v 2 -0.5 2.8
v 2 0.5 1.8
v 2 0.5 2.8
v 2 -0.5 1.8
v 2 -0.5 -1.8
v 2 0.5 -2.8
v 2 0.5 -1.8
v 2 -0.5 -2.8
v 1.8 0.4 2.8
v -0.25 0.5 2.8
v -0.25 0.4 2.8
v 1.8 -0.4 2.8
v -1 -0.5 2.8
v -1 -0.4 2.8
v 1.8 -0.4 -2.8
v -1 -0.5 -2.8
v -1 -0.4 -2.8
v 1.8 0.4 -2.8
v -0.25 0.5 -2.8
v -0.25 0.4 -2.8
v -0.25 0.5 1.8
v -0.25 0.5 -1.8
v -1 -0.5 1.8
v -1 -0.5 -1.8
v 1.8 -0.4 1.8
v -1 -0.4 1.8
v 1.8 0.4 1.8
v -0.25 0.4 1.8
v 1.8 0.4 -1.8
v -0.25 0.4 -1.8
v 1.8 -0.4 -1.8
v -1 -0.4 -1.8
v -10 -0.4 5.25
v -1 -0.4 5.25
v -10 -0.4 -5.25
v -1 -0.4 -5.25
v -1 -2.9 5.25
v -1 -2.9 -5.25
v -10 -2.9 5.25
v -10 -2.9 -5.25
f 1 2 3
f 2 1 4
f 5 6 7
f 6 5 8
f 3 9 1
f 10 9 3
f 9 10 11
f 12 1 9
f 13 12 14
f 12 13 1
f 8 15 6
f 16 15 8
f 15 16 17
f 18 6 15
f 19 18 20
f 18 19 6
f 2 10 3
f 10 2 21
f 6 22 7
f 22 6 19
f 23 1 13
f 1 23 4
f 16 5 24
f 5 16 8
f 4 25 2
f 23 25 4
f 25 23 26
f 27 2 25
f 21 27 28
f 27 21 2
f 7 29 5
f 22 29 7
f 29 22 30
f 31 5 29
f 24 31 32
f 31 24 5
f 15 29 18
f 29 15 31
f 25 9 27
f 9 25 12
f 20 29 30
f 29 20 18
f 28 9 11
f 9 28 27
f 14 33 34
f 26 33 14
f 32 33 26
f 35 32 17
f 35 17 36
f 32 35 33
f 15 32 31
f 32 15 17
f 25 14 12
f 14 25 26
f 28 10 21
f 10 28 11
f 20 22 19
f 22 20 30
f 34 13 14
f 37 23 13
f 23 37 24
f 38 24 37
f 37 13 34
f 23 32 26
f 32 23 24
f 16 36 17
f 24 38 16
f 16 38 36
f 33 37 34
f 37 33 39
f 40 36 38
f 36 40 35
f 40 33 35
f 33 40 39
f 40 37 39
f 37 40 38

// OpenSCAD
difference() {
    cube([4,1,5.6],true);
    cube([6,4,3.6],true);
    translate([-.3,0,0])cube([4.2,0.8,8],true);
    translate([-1.5,1.2,0])cube([2.5,3.1,8],true);
}
translate([-5.5,-1.65,0])cube([9,2.5,10.5],true);
